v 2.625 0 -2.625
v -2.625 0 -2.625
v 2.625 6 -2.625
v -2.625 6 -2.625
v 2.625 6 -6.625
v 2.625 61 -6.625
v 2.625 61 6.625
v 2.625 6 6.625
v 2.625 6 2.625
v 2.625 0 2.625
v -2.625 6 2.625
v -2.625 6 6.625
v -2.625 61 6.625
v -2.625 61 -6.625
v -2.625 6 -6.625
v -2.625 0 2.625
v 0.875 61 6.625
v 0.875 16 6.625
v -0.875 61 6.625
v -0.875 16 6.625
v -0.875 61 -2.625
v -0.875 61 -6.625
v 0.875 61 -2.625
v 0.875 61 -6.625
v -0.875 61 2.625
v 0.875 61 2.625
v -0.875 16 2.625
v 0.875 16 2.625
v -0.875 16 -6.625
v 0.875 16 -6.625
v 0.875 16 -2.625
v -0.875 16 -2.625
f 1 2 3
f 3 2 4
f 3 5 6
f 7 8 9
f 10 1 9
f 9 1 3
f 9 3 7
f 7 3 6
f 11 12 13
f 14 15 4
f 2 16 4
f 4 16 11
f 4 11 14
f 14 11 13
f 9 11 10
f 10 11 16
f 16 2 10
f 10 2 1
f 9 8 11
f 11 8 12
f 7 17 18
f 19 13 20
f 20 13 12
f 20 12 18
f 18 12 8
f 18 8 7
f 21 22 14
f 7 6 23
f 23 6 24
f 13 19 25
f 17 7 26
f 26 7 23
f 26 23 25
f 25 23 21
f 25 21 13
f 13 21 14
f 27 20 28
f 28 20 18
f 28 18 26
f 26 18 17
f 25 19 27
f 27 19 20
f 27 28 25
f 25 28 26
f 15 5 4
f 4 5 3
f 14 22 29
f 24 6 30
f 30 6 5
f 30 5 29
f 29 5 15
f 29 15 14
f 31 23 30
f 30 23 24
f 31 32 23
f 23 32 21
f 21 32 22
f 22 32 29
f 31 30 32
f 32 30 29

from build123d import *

# Parameters (mm, degrees)
SKETCH1_W           = 5.25
SKETCH1_H           = 5.25
BOSS_EXTRUDE1_DEPTH = 6
SKETCH2_W           = 5.25
SKETCH2_H           = 9.25
BOSS_EXTRUDE2_DEPTH = 55
SKETCH3_W           = 1.75
SKETCH3_H           = 8
CUT_EXTRUDE1_DEPTH  = 45
SKETCH4_W           = 5.25
SKETCH4_H           = 55
BOSS_EXTRUDE3_DEPTH = 4
SKETCH5_W           = 1.75
SKETCH5_H           = 8
CUT_EXTRUDE2_DEPTH  = 45


with BuildPart() as part:
    # Sketch1 → Boss-Extrude1 (new body)
    with BuildSketch(Plane(origin=(0, 0, 0), x_dir=(1, 0, 0), z_dir=(0, 1, 0))):
        Rectangle(SKETCH1_W, SKETCH1_H)
    extrude(amount=BOSS_EXTRUDE1_DEPTH)

    # Sketch2 → Boss-Extrude2 (add)
    with BuildSketch(Plane(origin=(0, 6, 0), x_dir=(1, 0, 0), z_dir=(0, 1, 0))):
        with Locations((0, -2)):
            Rectangle(SKETCH2_W, SKETCH2_H)
    extrude(amount=BOSS_EXTRUDE2_DEPTH)

    # Sketch3 → Cut-Extrude1 (cut)
    with BuildSketch(Plane(origin=(0, 61, 0), x_dir=(1, 0, 0), z_dir=(0, 1, 0))):
        with Locations((0, -6.625)):
            Rectangle(SKETCH3_W, SKETCH3_H)
    extrude(amount=-CUT_EXTRUDE1_DEPTH, mode=Mode.SUBTRACT)

    # Sketch4 → Boss-Extrude3 (add)
    with BuildSketch(Plane(origin=(0, 0, -2.625), x_dir=(-1, 0, 0), z_dir=(0, 0, -1))):
        with Locations((0, 33.5)):
            Rectangle(SKETCH4_W, SKETCH4_H)
    extrude(amount=BOSS_EXTRUDE3_DEPTH)

    # Sketch5 → Cut-Extrude2 (cut)
    with BuildSketch(Plane(origin=(0, 61, 0), x_dir=(1, 0, 0), z_dir=(0, 1, 0))):
        with Locations((0, 6.625)):
            Rectangle(SKETCH5_W, SKETCH5_H)
    extrude(amount=-CUT_EXTRUDE2_DEPTH, mode=Mode.SUBTRACT)


solid = part.part
